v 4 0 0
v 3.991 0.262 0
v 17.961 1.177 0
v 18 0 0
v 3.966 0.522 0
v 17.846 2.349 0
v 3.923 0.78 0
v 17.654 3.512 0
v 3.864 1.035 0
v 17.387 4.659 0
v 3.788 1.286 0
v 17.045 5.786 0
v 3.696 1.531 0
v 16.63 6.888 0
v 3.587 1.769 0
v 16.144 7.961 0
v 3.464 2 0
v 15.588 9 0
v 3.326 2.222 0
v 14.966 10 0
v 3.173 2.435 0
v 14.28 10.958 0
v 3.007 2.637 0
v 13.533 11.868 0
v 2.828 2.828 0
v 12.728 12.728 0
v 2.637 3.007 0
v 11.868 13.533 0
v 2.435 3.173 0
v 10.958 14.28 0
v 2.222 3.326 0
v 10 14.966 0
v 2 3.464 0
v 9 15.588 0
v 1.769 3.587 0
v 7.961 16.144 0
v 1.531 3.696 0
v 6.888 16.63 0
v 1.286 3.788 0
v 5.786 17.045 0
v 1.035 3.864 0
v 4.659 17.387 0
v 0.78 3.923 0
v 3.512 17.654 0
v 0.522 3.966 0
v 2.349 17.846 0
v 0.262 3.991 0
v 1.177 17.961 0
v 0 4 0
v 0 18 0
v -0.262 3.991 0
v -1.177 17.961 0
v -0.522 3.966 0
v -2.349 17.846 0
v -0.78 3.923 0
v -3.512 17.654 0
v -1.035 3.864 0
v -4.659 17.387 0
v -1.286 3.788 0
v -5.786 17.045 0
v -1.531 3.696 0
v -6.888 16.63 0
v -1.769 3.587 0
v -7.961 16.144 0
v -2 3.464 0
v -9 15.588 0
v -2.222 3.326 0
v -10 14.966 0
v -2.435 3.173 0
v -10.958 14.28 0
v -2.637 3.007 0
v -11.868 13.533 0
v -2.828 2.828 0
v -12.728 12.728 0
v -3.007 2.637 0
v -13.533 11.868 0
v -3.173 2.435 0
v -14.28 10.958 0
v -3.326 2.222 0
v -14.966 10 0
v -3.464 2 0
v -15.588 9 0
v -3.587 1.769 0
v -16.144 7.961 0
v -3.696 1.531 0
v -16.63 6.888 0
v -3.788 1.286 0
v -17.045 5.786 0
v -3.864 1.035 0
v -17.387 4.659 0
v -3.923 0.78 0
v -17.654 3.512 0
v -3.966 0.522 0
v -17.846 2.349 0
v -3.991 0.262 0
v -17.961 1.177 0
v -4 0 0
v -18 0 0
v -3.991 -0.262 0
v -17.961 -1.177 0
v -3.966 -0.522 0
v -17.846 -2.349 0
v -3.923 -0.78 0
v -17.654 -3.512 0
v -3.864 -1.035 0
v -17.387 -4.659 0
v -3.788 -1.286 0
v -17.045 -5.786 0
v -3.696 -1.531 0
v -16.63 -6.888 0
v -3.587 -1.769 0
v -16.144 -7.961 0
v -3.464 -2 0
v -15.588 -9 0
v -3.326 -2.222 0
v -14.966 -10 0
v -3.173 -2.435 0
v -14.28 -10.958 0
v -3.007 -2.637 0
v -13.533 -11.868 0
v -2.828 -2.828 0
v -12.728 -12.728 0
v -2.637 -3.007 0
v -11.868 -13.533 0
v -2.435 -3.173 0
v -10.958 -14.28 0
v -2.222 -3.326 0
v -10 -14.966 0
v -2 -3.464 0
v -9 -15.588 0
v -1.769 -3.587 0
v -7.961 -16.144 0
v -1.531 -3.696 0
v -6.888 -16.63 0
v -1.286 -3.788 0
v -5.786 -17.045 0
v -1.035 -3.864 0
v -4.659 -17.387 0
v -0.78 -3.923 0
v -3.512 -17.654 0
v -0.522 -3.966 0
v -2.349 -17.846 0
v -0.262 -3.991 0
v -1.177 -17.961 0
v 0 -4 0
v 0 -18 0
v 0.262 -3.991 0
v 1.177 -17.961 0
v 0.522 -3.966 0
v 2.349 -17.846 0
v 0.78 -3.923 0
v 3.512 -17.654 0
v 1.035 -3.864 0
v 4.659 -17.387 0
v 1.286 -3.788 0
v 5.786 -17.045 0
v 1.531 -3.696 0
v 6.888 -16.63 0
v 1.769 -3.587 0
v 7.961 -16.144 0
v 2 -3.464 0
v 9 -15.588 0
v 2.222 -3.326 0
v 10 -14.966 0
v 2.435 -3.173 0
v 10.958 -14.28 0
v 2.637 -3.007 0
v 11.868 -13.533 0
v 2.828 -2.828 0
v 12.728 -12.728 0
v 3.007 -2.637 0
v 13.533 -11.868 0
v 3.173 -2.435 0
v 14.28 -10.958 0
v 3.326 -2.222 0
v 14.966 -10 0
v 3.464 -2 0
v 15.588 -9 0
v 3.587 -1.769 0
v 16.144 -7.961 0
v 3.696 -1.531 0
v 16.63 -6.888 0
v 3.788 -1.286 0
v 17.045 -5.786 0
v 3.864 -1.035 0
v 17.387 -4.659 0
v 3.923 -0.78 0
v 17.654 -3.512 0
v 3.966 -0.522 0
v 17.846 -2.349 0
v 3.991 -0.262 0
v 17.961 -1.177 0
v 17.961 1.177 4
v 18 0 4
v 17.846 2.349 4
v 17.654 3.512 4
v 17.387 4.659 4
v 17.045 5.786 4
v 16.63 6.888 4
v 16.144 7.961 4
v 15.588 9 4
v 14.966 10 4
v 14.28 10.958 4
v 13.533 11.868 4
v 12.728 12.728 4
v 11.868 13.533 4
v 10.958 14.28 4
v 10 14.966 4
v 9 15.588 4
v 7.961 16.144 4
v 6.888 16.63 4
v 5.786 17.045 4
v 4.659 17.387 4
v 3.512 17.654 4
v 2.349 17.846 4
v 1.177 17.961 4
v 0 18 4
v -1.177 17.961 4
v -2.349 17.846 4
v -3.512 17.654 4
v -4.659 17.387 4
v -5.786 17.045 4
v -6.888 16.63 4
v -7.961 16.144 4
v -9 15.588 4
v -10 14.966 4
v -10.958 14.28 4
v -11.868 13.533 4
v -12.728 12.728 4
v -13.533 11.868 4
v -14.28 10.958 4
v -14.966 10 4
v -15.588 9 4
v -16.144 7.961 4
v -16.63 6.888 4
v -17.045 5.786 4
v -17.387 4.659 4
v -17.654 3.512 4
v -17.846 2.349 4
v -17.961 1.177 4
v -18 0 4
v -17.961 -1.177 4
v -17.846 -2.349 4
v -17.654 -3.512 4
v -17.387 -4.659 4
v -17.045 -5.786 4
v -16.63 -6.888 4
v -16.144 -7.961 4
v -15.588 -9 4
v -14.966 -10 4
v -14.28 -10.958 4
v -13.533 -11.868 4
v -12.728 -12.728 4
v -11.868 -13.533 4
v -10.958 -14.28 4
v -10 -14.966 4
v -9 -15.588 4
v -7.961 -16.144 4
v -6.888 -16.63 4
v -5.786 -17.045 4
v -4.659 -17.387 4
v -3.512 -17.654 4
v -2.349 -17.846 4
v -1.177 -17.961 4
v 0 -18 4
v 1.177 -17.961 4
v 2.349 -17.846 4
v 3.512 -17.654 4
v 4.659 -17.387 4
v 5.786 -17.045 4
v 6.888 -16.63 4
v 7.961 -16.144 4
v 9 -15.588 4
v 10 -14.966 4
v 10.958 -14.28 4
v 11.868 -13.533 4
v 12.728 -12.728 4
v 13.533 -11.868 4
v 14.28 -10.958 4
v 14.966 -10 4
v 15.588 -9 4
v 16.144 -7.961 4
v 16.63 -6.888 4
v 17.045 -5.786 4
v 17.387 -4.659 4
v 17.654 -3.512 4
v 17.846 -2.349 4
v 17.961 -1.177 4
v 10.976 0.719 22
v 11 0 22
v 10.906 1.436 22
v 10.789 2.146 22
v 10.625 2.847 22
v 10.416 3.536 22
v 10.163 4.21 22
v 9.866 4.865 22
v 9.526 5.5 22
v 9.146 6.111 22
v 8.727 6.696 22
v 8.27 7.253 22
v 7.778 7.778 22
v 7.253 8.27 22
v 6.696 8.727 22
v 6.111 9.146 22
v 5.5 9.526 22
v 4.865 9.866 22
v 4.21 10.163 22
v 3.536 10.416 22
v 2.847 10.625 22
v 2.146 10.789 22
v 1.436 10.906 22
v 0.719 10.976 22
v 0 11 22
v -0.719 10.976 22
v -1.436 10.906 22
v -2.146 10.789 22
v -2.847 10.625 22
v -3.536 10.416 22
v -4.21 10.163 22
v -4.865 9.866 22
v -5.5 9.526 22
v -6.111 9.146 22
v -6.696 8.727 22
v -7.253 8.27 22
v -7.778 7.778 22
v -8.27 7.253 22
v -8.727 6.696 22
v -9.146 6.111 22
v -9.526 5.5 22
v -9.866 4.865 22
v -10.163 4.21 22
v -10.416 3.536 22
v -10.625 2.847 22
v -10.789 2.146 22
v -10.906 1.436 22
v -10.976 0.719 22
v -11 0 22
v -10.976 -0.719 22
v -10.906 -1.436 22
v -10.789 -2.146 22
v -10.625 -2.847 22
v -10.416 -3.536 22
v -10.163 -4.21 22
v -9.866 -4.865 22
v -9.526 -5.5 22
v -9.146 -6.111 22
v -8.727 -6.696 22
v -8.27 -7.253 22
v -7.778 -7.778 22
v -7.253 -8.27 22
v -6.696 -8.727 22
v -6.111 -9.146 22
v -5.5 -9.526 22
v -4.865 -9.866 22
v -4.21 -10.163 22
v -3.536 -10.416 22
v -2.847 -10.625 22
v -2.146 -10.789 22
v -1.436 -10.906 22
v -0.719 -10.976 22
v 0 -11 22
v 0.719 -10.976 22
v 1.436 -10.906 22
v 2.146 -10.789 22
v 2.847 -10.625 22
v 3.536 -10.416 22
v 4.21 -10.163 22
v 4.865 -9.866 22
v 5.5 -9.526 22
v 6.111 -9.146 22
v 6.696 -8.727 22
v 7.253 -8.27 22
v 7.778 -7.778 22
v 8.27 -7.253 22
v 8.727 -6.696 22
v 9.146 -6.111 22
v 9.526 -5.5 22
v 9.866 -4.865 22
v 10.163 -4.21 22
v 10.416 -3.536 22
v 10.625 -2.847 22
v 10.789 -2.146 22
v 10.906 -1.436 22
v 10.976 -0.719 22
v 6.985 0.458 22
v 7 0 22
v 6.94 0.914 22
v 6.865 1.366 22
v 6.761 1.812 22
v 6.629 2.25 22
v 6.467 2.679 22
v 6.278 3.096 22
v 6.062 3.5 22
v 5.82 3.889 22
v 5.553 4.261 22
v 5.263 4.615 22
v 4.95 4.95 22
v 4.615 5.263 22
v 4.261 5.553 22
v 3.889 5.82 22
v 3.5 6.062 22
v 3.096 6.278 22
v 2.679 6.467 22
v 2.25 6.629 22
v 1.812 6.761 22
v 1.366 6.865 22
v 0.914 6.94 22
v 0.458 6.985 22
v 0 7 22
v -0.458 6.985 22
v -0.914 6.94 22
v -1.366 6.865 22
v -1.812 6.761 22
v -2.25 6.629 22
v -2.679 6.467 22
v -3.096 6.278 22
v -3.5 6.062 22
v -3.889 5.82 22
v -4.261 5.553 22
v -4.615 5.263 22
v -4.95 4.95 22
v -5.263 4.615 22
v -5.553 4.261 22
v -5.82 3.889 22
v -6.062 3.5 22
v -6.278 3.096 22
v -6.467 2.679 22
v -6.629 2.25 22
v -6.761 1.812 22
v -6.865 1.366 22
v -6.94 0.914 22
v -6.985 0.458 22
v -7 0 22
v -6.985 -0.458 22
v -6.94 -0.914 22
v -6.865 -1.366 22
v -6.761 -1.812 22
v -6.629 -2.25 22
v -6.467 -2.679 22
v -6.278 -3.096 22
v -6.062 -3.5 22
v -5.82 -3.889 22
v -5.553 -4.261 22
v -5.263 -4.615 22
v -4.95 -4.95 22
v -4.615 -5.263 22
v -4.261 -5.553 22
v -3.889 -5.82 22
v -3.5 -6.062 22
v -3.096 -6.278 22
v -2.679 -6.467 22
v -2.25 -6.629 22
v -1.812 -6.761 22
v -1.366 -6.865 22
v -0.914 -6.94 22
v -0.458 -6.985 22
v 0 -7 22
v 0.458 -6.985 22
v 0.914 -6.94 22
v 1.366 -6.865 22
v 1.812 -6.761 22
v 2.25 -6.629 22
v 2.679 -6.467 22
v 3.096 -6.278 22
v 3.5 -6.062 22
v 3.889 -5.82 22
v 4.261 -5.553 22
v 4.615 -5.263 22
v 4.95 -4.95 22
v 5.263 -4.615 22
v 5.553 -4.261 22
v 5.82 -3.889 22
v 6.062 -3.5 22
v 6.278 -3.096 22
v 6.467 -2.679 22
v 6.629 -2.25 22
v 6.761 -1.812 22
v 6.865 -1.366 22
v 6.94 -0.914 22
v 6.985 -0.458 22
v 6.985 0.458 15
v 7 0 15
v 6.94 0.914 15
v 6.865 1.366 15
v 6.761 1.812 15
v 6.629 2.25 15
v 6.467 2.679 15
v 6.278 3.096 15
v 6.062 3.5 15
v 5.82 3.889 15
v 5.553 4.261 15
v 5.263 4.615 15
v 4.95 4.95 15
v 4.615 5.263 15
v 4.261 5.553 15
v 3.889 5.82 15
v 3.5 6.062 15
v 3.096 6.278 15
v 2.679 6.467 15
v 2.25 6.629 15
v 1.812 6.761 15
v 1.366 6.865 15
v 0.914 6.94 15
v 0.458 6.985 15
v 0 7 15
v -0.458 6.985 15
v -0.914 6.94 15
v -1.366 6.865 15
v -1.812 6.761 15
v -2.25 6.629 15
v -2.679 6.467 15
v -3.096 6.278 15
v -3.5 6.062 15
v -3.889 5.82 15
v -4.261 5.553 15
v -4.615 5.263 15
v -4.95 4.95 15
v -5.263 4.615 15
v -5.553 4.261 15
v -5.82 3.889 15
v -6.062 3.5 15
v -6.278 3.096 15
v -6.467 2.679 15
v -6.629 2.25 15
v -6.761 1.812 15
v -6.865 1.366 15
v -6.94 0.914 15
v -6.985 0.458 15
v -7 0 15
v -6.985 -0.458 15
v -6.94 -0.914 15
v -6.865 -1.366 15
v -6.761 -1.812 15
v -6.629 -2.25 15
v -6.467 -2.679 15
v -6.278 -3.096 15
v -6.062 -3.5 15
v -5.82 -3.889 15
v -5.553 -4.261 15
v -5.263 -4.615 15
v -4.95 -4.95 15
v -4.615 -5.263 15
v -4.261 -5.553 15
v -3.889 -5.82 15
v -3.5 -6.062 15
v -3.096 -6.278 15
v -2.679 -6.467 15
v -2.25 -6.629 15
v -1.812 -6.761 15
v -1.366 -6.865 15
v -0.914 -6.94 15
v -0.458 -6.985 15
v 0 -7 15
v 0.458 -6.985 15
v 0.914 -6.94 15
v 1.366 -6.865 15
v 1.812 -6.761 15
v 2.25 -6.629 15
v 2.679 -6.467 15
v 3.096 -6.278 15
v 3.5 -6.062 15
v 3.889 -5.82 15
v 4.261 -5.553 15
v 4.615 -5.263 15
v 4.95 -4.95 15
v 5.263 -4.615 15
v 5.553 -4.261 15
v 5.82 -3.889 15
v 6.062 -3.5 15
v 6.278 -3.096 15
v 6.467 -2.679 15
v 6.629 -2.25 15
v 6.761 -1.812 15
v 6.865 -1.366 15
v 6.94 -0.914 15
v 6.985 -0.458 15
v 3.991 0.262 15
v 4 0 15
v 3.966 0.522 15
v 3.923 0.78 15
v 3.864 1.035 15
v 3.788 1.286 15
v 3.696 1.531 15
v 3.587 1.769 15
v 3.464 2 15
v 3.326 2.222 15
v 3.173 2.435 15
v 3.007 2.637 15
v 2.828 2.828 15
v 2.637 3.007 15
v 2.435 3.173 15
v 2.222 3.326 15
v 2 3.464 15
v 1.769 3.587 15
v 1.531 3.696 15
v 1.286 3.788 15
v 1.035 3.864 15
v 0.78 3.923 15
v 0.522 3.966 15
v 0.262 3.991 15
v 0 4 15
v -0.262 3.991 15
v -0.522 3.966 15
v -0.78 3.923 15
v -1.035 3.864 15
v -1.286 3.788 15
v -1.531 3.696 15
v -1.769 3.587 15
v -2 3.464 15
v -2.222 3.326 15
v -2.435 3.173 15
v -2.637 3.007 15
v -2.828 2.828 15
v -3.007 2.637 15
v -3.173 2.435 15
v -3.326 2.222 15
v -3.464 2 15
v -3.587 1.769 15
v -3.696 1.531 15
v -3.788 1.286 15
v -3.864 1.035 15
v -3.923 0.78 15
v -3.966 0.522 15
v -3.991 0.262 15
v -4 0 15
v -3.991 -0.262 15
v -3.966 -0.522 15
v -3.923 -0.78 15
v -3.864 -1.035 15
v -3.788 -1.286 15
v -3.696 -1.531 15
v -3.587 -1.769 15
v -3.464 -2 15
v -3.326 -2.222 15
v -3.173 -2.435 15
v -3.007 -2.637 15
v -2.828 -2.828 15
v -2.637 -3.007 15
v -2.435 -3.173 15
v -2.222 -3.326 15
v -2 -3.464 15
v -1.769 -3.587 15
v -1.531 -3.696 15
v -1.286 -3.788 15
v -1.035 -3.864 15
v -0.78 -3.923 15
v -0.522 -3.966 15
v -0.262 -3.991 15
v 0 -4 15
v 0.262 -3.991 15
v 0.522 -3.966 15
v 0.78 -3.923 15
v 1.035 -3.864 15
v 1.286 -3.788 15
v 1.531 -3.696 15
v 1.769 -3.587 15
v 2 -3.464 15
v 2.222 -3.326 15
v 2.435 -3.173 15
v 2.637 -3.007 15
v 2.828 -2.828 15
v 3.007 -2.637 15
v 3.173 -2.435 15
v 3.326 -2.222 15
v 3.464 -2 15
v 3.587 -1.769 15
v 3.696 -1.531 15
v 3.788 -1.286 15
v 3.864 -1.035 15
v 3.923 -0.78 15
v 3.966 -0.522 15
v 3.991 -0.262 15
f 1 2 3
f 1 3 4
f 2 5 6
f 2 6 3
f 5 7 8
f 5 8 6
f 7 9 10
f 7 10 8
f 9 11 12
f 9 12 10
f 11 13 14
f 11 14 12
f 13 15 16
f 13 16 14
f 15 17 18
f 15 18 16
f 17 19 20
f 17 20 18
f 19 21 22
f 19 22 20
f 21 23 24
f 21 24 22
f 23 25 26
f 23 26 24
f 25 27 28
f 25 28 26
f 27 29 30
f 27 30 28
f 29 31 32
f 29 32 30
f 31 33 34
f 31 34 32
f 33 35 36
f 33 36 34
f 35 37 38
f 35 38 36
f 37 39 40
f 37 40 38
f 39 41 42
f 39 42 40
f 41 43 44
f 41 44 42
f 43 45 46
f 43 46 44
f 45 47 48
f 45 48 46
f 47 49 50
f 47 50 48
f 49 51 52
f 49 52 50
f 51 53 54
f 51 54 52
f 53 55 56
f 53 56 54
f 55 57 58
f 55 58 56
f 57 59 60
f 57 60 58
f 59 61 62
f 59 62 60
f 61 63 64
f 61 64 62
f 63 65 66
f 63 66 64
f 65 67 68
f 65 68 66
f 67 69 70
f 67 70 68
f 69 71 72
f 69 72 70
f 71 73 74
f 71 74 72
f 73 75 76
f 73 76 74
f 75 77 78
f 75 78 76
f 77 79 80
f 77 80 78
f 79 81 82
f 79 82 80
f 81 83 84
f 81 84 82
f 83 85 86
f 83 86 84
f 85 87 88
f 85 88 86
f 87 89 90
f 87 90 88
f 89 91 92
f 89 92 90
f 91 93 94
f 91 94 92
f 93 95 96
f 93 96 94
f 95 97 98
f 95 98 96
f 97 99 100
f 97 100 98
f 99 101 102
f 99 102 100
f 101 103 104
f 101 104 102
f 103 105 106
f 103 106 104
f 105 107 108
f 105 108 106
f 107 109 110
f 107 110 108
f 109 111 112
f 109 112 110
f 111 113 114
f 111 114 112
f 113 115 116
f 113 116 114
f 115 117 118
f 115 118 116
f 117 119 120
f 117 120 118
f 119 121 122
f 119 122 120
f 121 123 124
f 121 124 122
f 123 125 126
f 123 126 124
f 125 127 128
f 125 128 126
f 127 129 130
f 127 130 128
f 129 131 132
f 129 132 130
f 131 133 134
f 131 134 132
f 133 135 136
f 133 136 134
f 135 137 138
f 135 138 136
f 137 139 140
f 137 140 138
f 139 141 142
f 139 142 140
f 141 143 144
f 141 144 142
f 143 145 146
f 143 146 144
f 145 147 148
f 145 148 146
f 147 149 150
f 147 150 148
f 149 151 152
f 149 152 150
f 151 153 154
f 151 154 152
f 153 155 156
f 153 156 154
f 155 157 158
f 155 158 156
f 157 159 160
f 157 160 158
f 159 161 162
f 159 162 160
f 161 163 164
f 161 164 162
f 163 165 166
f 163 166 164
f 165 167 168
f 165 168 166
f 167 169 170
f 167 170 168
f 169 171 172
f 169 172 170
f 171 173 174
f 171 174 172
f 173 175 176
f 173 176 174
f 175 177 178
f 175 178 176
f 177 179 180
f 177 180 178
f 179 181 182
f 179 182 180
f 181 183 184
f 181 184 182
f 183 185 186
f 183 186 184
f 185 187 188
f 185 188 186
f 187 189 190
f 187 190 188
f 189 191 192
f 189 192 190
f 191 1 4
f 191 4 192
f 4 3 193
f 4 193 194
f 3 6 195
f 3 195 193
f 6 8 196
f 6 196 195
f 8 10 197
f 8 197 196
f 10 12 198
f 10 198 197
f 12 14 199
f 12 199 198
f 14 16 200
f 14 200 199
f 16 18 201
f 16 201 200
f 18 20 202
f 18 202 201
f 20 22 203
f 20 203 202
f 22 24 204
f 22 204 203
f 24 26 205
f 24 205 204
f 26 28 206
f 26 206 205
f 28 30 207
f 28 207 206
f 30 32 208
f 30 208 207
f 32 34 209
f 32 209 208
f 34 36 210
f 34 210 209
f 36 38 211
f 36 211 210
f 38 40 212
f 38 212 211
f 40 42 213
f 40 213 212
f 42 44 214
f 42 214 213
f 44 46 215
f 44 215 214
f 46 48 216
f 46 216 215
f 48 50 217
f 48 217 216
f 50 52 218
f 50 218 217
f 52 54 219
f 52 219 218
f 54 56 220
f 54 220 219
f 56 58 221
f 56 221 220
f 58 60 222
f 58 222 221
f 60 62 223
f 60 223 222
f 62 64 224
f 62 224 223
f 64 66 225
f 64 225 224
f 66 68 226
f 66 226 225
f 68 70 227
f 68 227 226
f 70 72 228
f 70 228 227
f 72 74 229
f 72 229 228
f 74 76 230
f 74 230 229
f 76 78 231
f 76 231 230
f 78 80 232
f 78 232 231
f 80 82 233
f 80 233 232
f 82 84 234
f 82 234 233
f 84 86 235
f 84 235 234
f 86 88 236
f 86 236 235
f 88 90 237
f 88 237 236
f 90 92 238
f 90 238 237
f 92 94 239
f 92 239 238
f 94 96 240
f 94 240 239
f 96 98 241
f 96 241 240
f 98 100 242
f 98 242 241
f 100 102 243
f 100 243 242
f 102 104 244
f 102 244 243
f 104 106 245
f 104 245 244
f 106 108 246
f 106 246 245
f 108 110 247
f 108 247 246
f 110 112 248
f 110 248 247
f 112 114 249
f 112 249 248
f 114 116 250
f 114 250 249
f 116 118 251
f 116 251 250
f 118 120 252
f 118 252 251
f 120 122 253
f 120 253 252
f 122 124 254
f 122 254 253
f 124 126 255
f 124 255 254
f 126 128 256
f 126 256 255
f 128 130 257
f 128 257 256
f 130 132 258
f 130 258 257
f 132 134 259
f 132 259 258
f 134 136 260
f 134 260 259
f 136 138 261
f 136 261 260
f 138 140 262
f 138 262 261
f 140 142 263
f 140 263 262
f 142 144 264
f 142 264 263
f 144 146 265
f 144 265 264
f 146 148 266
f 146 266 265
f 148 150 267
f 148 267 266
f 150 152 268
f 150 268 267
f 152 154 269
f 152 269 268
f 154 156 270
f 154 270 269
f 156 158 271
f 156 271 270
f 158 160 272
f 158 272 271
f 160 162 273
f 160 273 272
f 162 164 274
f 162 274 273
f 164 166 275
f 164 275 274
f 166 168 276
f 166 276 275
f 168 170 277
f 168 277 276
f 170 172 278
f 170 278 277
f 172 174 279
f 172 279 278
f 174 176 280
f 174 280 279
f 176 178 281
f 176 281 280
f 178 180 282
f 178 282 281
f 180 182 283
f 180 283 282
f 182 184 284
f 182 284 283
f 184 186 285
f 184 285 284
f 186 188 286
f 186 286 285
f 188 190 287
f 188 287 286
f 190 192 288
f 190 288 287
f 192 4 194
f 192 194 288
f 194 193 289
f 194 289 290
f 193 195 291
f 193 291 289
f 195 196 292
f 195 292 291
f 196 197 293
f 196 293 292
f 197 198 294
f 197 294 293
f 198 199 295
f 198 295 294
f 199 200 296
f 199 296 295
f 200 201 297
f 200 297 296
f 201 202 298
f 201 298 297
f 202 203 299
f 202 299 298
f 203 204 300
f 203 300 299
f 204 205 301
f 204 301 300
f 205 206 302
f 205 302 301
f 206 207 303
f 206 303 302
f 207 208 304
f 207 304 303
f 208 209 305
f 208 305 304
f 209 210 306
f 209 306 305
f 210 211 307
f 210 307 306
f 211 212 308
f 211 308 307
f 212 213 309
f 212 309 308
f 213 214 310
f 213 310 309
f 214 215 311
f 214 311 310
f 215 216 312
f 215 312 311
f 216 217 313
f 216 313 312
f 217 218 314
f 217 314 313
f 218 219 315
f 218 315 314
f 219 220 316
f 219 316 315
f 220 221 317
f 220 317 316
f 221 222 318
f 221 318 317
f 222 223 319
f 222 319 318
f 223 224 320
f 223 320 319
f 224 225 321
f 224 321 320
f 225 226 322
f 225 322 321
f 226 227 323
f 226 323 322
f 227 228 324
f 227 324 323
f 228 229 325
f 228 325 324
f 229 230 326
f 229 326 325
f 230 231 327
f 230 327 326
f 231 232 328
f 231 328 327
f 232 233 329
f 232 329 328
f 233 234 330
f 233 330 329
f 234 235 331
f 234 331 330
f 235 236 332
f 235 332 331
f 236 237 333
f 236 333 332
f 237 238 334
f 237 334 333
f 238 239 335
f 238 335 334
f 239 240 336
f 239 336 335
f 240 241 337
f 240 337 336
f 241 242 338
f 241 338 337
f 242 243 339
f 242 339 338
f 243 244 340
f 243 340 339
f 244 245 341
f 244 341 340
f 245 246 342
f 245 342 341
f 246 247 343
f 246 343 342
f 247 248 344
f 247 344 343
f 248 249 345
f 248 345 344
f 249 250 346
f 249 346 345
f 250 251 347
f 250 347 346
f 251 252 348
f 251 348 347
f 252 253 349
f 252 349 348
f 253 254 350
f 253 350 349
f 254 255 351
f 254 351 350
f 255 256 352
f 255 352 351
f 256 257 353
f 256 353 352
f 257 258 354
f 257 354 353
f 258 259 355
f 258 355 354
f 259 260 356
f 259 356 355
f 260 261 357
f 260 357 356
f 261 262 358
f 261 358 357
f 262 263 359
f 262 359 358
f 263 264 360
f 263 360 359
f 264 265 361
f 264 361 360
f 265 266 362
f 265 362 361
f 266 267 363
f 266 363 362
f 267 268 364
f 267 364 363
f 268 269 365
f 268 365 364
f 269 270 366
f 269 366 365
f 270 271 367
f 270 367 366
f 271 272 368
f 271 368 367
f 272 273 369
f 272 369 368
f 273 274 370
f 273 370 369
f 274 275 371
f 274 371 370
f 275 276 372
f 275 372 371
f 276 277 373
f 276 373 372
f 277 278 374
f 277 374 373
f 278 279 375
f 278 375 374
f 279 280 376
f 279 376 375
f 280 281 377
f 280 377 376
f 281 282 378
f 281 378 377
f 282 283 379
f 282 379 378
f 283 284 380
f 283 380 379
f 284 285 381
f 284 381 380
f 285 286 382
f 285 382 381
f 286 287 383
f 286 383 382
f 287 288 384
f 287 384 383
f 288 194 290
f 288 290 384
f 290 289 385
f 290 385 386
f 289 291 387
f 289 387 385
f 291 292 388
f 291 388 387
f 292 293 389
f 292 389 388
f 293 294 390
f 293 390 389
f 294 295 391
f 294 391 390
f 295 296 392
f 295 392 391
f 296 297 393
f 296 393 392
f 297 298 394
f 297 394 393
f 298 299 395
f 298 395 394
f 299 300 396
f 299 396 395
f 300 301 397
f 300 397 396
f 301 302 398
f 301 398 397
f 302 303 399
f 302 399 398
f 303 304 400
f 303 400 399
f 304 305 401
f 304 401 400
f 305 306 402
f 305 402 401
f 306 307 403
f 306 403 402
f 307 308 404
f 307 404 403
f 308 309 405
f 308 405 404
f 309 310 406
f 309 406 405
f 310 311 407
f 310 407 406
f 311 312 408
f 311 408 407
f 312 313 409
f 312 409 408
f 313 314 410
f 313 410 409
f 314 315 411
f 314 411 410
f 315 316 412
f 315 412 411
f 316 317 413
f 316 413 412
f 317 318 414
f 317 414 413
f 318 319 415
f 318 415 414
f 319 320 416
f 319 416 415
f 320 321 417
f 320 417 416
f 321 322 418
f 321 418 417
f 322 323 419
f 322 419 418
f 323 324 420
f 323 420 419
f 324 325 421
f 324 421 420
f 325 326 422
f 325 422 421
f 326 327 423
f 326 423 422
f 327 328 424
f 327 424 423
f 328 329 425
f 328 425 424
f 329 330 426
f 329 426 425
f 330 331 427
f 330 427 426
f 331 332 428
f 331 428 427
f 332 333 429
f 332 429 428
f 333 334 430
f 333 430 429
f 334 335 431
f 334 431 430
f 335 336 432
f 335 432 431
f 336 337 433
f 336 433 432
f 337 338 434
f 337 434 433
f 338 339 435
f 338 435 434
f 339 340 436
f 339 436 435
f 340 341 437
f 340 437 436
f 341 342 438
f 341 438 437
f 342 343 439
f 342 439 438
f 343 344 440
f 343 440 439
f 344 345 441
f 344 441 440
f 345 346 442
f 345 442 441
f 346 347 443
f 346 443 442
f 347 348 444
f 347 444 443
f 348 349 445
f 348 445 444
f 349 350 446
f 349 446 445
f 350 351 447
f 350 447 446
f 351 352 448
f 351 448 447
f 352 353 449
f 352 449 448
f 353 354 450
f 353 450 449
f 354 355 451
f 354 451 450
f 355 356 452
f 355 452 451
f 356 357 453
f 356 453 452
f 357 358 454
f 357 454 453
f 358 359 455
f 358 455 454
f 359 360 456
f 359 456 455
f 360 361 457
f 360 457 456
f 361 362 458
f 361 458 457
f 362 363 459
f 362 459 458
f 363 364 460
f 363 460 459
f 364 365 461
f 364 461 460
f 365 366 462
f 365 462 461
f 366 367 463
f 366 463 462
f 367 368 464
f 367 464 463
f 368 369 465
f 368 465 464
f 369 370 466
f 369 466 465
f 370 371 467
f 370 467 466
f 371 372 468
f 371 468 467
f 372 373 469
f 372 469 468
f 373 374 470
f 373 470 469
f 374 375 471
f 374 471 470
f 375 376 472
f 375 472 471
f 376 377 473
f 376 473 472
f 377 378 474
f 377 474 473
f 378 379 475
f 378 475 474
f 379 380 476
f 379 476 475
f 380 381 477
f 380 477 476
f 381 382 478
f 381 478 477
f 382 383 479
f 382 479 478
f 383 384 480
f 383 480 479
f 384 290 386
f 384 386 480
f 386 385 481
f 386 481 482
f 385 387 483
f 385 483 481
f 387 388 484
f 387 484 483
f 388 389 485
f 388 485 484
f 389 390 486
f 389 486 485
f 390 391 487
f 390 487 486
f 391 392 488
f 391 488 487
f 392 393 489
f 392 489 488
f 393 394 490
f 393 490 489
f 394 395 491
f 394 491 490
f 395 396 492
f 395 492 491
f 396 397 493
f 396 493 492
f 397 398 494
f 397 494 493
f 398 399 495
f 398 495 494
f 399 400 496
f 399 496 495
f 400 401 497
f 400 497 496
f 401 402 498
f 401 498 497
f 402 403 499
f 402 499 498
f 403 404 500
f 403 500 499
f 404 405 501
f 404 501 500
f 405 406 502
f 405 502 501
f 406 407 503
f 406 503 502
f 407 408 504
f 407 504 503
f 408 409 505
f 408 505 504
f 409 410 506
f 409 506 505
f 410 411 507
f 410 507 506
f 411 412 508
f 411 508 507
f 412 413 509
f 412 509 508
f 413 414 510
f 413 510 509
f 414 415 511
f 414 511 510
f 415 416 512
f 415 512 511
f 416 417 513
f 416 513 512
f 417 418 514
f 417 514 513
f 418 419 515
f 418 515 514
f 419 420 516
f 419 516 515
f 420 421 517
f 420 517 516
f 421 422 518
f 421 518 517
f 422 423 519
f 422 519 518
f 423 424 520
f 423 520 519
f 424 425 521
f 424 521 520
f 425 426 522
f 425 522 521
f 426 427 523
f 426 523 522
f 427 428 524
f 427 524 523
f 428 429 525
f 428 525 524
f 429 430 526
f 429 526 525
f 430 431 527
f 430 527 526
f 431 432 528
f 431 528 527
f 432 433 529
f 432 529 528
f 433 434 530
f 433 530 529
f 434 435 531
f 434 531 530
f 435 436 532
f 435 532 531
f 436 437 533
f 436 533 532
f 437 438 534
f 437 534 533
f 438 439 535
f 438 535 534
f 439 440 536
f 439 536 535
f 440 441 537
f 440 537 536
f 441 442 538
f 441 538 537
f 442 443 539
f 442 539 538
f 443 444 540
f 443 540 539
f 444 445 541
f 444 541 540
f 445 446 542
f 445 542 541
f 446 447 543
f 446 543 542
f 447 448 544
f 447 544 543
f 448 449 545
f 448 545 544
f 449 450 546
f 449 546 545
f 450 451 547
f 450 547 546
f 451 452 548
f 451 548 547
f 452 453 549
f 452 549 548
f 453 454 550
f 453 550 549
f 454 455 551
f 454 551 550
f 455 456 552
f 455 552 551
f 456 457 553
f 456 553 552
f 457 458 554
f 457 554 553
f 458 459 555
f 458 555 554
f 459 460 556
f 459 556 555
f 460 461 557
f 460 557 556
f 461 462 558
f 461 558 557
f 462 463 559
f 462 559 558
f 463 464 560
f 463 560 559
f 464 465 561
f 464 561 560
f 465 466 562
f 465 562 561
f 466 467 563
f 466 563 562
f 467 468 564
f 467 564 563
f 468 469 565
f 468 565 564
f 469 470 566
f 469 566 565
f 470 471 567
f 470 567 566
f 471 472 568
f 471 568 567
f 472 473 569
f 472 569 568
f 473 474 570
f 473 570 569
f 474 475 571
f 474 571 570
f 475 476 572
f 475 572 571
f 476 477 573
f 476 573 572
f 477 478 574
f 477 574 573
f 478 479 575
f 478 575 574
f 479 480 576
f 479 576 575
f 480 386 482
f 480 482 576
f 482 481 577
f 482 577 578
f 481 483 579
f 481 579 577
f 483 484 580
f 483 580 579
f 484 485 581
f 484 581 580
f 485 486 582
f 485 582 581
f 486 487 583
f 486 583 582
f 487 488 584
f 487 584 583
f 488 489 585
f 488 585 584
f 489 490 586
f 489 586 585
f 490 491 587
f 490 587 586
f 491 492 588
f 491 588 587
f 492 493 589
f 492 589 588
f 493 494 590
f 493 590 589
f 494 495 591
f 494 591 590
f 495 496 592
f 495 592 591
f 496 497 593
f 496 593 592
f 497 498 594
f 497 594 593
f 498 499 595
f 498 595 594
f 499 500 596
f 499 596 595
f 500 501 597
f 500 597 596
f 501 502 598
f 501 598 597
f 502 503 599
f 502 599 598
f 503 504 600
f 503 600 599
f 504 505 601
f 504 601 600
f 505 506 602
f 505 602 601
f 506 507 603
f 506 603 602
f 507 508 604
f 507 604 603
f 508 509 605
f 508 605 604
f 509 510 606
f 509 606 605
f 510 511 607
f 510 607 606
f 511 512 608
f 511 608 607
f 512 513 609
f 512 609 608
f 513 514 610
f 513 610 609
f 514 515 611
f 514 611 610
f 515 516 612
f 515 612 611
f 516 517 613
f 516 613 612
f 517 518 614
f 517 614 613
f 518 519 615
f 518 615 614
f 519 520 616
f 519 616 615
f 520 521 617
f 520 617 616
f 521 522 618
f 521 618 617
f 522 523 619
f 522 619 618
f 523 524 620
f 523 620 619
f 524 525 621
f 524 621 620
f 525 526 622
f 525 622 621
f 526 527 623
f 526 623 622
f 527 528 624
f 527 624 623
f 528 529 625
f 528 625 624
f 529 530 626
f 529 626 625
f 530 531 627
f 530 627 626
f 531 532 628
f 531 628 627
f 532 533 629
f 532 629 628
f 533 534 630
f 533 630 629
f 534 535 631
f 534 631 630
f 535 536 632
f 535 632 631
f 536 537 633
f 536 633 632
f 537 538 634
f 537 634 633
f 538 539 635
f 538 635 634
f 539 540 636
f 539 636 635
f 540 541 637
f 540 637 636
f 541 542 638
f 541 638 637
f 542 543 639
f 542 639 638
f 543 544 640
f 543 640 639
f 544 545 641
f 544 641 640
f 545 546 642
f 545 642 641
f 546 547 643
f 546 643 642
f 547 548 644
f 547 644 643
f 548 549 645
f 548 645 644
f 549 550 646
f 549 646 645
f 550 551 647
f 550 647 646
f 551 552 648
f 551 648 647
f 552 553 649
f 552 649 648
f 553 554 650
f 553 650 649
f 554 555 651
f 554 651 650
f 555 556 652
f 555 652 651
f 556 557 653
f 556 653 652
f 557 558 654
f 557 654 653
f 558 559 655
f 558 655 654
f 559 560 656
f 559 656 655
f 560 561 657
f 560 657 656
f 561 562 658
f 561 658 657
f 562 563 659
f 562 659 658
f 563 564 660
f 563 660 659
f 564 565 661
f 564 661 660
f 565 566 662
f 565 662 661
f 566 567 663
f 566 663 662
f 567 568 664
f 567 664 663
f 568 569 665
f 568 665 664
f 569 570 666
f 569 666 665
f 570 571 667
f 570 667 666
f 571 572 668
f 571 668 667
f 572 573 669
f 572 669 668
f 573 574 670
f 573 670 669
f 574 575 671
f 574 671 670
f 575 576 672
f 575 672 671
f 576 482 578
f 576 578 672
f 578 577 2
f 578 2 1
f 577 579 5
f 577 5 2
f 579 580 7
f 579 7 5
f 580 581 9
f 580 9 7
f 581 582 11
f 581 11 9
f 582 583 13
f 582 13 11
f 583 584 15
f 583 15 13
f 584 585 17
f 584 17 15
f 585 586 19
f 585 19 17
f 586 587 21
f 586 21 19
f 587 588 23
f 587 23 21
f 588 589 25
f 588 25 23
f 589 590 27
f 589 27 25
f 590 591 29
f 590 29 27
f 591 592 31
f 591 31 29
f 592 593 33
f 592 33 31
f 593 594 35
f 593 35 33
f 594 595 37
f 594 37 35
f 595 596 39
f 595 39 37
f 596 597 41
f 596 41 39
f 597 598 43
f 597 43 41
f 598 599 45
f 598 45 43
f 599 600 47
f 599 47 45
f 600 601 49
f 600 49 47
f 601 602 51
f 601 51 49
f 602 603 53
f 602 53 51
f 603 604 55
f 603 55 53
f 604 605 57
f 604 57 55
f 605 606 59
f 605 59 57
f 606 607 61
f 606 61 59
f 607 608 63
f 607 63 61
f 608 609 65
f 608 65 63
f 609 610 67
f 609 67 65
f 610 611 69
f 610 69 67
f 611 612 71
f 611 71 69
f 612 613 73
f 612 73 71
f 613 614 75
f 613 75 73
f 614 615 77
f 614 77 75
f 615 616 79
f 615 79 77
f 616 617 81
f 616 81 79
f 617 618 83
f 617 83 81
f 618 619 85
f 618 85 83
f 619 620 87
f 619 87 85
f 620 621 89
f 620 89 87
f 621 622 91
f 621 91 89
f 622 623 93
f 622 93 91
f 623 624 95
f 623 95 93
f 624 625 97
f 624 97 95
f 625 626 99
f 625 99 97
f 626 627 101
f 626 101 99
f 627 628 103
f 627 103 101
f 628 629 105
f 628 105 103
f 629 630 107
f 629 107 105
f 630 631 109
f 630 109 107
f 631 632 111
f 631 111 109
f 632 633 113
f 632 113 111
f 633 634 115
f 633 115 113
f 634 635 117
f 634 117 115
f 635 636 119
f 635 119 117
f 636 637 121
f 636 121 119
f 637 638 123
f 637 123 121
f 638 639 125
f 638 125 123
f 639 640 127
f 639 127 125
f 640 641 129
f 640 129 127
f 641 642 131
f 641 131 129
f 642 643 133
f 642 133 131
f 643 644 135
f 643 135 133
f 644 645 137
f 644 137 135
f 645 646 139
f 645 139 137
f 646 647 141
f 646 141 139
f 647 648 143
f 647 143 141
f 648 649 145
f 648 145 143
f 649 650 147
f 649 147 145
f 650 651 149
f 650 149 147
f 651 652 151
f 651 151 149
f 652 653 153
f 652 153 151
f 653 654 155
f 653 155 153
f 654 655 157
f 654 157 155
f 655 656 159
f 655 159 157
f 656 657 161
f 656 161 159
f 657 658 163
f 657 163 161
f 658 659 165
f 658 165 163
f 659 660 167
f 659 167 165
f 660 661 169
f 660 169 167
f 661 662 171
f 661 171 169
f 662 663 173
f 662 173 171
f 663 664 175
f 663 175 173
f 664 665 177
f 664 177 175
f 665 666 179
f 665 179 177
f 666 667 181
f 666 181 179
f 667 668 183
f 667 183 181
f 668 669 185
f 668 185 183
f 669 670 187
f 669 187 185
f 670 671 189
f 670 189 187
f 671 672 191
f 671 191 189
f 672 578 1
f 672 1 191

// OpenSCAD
// Original MechIntel educational model. CC0-1.0. Units: mm.
// Not a standardized or load-rated component.
$fn=96;
// Section points: [radius, height], mm. Edit to change the profile.
section=[[4, 0], [18, 0], [18, 4], [11, 22], [7, 22], [7, 15], [4, 15]];
rotate_extrude($fn=96) polygon(points=section);
